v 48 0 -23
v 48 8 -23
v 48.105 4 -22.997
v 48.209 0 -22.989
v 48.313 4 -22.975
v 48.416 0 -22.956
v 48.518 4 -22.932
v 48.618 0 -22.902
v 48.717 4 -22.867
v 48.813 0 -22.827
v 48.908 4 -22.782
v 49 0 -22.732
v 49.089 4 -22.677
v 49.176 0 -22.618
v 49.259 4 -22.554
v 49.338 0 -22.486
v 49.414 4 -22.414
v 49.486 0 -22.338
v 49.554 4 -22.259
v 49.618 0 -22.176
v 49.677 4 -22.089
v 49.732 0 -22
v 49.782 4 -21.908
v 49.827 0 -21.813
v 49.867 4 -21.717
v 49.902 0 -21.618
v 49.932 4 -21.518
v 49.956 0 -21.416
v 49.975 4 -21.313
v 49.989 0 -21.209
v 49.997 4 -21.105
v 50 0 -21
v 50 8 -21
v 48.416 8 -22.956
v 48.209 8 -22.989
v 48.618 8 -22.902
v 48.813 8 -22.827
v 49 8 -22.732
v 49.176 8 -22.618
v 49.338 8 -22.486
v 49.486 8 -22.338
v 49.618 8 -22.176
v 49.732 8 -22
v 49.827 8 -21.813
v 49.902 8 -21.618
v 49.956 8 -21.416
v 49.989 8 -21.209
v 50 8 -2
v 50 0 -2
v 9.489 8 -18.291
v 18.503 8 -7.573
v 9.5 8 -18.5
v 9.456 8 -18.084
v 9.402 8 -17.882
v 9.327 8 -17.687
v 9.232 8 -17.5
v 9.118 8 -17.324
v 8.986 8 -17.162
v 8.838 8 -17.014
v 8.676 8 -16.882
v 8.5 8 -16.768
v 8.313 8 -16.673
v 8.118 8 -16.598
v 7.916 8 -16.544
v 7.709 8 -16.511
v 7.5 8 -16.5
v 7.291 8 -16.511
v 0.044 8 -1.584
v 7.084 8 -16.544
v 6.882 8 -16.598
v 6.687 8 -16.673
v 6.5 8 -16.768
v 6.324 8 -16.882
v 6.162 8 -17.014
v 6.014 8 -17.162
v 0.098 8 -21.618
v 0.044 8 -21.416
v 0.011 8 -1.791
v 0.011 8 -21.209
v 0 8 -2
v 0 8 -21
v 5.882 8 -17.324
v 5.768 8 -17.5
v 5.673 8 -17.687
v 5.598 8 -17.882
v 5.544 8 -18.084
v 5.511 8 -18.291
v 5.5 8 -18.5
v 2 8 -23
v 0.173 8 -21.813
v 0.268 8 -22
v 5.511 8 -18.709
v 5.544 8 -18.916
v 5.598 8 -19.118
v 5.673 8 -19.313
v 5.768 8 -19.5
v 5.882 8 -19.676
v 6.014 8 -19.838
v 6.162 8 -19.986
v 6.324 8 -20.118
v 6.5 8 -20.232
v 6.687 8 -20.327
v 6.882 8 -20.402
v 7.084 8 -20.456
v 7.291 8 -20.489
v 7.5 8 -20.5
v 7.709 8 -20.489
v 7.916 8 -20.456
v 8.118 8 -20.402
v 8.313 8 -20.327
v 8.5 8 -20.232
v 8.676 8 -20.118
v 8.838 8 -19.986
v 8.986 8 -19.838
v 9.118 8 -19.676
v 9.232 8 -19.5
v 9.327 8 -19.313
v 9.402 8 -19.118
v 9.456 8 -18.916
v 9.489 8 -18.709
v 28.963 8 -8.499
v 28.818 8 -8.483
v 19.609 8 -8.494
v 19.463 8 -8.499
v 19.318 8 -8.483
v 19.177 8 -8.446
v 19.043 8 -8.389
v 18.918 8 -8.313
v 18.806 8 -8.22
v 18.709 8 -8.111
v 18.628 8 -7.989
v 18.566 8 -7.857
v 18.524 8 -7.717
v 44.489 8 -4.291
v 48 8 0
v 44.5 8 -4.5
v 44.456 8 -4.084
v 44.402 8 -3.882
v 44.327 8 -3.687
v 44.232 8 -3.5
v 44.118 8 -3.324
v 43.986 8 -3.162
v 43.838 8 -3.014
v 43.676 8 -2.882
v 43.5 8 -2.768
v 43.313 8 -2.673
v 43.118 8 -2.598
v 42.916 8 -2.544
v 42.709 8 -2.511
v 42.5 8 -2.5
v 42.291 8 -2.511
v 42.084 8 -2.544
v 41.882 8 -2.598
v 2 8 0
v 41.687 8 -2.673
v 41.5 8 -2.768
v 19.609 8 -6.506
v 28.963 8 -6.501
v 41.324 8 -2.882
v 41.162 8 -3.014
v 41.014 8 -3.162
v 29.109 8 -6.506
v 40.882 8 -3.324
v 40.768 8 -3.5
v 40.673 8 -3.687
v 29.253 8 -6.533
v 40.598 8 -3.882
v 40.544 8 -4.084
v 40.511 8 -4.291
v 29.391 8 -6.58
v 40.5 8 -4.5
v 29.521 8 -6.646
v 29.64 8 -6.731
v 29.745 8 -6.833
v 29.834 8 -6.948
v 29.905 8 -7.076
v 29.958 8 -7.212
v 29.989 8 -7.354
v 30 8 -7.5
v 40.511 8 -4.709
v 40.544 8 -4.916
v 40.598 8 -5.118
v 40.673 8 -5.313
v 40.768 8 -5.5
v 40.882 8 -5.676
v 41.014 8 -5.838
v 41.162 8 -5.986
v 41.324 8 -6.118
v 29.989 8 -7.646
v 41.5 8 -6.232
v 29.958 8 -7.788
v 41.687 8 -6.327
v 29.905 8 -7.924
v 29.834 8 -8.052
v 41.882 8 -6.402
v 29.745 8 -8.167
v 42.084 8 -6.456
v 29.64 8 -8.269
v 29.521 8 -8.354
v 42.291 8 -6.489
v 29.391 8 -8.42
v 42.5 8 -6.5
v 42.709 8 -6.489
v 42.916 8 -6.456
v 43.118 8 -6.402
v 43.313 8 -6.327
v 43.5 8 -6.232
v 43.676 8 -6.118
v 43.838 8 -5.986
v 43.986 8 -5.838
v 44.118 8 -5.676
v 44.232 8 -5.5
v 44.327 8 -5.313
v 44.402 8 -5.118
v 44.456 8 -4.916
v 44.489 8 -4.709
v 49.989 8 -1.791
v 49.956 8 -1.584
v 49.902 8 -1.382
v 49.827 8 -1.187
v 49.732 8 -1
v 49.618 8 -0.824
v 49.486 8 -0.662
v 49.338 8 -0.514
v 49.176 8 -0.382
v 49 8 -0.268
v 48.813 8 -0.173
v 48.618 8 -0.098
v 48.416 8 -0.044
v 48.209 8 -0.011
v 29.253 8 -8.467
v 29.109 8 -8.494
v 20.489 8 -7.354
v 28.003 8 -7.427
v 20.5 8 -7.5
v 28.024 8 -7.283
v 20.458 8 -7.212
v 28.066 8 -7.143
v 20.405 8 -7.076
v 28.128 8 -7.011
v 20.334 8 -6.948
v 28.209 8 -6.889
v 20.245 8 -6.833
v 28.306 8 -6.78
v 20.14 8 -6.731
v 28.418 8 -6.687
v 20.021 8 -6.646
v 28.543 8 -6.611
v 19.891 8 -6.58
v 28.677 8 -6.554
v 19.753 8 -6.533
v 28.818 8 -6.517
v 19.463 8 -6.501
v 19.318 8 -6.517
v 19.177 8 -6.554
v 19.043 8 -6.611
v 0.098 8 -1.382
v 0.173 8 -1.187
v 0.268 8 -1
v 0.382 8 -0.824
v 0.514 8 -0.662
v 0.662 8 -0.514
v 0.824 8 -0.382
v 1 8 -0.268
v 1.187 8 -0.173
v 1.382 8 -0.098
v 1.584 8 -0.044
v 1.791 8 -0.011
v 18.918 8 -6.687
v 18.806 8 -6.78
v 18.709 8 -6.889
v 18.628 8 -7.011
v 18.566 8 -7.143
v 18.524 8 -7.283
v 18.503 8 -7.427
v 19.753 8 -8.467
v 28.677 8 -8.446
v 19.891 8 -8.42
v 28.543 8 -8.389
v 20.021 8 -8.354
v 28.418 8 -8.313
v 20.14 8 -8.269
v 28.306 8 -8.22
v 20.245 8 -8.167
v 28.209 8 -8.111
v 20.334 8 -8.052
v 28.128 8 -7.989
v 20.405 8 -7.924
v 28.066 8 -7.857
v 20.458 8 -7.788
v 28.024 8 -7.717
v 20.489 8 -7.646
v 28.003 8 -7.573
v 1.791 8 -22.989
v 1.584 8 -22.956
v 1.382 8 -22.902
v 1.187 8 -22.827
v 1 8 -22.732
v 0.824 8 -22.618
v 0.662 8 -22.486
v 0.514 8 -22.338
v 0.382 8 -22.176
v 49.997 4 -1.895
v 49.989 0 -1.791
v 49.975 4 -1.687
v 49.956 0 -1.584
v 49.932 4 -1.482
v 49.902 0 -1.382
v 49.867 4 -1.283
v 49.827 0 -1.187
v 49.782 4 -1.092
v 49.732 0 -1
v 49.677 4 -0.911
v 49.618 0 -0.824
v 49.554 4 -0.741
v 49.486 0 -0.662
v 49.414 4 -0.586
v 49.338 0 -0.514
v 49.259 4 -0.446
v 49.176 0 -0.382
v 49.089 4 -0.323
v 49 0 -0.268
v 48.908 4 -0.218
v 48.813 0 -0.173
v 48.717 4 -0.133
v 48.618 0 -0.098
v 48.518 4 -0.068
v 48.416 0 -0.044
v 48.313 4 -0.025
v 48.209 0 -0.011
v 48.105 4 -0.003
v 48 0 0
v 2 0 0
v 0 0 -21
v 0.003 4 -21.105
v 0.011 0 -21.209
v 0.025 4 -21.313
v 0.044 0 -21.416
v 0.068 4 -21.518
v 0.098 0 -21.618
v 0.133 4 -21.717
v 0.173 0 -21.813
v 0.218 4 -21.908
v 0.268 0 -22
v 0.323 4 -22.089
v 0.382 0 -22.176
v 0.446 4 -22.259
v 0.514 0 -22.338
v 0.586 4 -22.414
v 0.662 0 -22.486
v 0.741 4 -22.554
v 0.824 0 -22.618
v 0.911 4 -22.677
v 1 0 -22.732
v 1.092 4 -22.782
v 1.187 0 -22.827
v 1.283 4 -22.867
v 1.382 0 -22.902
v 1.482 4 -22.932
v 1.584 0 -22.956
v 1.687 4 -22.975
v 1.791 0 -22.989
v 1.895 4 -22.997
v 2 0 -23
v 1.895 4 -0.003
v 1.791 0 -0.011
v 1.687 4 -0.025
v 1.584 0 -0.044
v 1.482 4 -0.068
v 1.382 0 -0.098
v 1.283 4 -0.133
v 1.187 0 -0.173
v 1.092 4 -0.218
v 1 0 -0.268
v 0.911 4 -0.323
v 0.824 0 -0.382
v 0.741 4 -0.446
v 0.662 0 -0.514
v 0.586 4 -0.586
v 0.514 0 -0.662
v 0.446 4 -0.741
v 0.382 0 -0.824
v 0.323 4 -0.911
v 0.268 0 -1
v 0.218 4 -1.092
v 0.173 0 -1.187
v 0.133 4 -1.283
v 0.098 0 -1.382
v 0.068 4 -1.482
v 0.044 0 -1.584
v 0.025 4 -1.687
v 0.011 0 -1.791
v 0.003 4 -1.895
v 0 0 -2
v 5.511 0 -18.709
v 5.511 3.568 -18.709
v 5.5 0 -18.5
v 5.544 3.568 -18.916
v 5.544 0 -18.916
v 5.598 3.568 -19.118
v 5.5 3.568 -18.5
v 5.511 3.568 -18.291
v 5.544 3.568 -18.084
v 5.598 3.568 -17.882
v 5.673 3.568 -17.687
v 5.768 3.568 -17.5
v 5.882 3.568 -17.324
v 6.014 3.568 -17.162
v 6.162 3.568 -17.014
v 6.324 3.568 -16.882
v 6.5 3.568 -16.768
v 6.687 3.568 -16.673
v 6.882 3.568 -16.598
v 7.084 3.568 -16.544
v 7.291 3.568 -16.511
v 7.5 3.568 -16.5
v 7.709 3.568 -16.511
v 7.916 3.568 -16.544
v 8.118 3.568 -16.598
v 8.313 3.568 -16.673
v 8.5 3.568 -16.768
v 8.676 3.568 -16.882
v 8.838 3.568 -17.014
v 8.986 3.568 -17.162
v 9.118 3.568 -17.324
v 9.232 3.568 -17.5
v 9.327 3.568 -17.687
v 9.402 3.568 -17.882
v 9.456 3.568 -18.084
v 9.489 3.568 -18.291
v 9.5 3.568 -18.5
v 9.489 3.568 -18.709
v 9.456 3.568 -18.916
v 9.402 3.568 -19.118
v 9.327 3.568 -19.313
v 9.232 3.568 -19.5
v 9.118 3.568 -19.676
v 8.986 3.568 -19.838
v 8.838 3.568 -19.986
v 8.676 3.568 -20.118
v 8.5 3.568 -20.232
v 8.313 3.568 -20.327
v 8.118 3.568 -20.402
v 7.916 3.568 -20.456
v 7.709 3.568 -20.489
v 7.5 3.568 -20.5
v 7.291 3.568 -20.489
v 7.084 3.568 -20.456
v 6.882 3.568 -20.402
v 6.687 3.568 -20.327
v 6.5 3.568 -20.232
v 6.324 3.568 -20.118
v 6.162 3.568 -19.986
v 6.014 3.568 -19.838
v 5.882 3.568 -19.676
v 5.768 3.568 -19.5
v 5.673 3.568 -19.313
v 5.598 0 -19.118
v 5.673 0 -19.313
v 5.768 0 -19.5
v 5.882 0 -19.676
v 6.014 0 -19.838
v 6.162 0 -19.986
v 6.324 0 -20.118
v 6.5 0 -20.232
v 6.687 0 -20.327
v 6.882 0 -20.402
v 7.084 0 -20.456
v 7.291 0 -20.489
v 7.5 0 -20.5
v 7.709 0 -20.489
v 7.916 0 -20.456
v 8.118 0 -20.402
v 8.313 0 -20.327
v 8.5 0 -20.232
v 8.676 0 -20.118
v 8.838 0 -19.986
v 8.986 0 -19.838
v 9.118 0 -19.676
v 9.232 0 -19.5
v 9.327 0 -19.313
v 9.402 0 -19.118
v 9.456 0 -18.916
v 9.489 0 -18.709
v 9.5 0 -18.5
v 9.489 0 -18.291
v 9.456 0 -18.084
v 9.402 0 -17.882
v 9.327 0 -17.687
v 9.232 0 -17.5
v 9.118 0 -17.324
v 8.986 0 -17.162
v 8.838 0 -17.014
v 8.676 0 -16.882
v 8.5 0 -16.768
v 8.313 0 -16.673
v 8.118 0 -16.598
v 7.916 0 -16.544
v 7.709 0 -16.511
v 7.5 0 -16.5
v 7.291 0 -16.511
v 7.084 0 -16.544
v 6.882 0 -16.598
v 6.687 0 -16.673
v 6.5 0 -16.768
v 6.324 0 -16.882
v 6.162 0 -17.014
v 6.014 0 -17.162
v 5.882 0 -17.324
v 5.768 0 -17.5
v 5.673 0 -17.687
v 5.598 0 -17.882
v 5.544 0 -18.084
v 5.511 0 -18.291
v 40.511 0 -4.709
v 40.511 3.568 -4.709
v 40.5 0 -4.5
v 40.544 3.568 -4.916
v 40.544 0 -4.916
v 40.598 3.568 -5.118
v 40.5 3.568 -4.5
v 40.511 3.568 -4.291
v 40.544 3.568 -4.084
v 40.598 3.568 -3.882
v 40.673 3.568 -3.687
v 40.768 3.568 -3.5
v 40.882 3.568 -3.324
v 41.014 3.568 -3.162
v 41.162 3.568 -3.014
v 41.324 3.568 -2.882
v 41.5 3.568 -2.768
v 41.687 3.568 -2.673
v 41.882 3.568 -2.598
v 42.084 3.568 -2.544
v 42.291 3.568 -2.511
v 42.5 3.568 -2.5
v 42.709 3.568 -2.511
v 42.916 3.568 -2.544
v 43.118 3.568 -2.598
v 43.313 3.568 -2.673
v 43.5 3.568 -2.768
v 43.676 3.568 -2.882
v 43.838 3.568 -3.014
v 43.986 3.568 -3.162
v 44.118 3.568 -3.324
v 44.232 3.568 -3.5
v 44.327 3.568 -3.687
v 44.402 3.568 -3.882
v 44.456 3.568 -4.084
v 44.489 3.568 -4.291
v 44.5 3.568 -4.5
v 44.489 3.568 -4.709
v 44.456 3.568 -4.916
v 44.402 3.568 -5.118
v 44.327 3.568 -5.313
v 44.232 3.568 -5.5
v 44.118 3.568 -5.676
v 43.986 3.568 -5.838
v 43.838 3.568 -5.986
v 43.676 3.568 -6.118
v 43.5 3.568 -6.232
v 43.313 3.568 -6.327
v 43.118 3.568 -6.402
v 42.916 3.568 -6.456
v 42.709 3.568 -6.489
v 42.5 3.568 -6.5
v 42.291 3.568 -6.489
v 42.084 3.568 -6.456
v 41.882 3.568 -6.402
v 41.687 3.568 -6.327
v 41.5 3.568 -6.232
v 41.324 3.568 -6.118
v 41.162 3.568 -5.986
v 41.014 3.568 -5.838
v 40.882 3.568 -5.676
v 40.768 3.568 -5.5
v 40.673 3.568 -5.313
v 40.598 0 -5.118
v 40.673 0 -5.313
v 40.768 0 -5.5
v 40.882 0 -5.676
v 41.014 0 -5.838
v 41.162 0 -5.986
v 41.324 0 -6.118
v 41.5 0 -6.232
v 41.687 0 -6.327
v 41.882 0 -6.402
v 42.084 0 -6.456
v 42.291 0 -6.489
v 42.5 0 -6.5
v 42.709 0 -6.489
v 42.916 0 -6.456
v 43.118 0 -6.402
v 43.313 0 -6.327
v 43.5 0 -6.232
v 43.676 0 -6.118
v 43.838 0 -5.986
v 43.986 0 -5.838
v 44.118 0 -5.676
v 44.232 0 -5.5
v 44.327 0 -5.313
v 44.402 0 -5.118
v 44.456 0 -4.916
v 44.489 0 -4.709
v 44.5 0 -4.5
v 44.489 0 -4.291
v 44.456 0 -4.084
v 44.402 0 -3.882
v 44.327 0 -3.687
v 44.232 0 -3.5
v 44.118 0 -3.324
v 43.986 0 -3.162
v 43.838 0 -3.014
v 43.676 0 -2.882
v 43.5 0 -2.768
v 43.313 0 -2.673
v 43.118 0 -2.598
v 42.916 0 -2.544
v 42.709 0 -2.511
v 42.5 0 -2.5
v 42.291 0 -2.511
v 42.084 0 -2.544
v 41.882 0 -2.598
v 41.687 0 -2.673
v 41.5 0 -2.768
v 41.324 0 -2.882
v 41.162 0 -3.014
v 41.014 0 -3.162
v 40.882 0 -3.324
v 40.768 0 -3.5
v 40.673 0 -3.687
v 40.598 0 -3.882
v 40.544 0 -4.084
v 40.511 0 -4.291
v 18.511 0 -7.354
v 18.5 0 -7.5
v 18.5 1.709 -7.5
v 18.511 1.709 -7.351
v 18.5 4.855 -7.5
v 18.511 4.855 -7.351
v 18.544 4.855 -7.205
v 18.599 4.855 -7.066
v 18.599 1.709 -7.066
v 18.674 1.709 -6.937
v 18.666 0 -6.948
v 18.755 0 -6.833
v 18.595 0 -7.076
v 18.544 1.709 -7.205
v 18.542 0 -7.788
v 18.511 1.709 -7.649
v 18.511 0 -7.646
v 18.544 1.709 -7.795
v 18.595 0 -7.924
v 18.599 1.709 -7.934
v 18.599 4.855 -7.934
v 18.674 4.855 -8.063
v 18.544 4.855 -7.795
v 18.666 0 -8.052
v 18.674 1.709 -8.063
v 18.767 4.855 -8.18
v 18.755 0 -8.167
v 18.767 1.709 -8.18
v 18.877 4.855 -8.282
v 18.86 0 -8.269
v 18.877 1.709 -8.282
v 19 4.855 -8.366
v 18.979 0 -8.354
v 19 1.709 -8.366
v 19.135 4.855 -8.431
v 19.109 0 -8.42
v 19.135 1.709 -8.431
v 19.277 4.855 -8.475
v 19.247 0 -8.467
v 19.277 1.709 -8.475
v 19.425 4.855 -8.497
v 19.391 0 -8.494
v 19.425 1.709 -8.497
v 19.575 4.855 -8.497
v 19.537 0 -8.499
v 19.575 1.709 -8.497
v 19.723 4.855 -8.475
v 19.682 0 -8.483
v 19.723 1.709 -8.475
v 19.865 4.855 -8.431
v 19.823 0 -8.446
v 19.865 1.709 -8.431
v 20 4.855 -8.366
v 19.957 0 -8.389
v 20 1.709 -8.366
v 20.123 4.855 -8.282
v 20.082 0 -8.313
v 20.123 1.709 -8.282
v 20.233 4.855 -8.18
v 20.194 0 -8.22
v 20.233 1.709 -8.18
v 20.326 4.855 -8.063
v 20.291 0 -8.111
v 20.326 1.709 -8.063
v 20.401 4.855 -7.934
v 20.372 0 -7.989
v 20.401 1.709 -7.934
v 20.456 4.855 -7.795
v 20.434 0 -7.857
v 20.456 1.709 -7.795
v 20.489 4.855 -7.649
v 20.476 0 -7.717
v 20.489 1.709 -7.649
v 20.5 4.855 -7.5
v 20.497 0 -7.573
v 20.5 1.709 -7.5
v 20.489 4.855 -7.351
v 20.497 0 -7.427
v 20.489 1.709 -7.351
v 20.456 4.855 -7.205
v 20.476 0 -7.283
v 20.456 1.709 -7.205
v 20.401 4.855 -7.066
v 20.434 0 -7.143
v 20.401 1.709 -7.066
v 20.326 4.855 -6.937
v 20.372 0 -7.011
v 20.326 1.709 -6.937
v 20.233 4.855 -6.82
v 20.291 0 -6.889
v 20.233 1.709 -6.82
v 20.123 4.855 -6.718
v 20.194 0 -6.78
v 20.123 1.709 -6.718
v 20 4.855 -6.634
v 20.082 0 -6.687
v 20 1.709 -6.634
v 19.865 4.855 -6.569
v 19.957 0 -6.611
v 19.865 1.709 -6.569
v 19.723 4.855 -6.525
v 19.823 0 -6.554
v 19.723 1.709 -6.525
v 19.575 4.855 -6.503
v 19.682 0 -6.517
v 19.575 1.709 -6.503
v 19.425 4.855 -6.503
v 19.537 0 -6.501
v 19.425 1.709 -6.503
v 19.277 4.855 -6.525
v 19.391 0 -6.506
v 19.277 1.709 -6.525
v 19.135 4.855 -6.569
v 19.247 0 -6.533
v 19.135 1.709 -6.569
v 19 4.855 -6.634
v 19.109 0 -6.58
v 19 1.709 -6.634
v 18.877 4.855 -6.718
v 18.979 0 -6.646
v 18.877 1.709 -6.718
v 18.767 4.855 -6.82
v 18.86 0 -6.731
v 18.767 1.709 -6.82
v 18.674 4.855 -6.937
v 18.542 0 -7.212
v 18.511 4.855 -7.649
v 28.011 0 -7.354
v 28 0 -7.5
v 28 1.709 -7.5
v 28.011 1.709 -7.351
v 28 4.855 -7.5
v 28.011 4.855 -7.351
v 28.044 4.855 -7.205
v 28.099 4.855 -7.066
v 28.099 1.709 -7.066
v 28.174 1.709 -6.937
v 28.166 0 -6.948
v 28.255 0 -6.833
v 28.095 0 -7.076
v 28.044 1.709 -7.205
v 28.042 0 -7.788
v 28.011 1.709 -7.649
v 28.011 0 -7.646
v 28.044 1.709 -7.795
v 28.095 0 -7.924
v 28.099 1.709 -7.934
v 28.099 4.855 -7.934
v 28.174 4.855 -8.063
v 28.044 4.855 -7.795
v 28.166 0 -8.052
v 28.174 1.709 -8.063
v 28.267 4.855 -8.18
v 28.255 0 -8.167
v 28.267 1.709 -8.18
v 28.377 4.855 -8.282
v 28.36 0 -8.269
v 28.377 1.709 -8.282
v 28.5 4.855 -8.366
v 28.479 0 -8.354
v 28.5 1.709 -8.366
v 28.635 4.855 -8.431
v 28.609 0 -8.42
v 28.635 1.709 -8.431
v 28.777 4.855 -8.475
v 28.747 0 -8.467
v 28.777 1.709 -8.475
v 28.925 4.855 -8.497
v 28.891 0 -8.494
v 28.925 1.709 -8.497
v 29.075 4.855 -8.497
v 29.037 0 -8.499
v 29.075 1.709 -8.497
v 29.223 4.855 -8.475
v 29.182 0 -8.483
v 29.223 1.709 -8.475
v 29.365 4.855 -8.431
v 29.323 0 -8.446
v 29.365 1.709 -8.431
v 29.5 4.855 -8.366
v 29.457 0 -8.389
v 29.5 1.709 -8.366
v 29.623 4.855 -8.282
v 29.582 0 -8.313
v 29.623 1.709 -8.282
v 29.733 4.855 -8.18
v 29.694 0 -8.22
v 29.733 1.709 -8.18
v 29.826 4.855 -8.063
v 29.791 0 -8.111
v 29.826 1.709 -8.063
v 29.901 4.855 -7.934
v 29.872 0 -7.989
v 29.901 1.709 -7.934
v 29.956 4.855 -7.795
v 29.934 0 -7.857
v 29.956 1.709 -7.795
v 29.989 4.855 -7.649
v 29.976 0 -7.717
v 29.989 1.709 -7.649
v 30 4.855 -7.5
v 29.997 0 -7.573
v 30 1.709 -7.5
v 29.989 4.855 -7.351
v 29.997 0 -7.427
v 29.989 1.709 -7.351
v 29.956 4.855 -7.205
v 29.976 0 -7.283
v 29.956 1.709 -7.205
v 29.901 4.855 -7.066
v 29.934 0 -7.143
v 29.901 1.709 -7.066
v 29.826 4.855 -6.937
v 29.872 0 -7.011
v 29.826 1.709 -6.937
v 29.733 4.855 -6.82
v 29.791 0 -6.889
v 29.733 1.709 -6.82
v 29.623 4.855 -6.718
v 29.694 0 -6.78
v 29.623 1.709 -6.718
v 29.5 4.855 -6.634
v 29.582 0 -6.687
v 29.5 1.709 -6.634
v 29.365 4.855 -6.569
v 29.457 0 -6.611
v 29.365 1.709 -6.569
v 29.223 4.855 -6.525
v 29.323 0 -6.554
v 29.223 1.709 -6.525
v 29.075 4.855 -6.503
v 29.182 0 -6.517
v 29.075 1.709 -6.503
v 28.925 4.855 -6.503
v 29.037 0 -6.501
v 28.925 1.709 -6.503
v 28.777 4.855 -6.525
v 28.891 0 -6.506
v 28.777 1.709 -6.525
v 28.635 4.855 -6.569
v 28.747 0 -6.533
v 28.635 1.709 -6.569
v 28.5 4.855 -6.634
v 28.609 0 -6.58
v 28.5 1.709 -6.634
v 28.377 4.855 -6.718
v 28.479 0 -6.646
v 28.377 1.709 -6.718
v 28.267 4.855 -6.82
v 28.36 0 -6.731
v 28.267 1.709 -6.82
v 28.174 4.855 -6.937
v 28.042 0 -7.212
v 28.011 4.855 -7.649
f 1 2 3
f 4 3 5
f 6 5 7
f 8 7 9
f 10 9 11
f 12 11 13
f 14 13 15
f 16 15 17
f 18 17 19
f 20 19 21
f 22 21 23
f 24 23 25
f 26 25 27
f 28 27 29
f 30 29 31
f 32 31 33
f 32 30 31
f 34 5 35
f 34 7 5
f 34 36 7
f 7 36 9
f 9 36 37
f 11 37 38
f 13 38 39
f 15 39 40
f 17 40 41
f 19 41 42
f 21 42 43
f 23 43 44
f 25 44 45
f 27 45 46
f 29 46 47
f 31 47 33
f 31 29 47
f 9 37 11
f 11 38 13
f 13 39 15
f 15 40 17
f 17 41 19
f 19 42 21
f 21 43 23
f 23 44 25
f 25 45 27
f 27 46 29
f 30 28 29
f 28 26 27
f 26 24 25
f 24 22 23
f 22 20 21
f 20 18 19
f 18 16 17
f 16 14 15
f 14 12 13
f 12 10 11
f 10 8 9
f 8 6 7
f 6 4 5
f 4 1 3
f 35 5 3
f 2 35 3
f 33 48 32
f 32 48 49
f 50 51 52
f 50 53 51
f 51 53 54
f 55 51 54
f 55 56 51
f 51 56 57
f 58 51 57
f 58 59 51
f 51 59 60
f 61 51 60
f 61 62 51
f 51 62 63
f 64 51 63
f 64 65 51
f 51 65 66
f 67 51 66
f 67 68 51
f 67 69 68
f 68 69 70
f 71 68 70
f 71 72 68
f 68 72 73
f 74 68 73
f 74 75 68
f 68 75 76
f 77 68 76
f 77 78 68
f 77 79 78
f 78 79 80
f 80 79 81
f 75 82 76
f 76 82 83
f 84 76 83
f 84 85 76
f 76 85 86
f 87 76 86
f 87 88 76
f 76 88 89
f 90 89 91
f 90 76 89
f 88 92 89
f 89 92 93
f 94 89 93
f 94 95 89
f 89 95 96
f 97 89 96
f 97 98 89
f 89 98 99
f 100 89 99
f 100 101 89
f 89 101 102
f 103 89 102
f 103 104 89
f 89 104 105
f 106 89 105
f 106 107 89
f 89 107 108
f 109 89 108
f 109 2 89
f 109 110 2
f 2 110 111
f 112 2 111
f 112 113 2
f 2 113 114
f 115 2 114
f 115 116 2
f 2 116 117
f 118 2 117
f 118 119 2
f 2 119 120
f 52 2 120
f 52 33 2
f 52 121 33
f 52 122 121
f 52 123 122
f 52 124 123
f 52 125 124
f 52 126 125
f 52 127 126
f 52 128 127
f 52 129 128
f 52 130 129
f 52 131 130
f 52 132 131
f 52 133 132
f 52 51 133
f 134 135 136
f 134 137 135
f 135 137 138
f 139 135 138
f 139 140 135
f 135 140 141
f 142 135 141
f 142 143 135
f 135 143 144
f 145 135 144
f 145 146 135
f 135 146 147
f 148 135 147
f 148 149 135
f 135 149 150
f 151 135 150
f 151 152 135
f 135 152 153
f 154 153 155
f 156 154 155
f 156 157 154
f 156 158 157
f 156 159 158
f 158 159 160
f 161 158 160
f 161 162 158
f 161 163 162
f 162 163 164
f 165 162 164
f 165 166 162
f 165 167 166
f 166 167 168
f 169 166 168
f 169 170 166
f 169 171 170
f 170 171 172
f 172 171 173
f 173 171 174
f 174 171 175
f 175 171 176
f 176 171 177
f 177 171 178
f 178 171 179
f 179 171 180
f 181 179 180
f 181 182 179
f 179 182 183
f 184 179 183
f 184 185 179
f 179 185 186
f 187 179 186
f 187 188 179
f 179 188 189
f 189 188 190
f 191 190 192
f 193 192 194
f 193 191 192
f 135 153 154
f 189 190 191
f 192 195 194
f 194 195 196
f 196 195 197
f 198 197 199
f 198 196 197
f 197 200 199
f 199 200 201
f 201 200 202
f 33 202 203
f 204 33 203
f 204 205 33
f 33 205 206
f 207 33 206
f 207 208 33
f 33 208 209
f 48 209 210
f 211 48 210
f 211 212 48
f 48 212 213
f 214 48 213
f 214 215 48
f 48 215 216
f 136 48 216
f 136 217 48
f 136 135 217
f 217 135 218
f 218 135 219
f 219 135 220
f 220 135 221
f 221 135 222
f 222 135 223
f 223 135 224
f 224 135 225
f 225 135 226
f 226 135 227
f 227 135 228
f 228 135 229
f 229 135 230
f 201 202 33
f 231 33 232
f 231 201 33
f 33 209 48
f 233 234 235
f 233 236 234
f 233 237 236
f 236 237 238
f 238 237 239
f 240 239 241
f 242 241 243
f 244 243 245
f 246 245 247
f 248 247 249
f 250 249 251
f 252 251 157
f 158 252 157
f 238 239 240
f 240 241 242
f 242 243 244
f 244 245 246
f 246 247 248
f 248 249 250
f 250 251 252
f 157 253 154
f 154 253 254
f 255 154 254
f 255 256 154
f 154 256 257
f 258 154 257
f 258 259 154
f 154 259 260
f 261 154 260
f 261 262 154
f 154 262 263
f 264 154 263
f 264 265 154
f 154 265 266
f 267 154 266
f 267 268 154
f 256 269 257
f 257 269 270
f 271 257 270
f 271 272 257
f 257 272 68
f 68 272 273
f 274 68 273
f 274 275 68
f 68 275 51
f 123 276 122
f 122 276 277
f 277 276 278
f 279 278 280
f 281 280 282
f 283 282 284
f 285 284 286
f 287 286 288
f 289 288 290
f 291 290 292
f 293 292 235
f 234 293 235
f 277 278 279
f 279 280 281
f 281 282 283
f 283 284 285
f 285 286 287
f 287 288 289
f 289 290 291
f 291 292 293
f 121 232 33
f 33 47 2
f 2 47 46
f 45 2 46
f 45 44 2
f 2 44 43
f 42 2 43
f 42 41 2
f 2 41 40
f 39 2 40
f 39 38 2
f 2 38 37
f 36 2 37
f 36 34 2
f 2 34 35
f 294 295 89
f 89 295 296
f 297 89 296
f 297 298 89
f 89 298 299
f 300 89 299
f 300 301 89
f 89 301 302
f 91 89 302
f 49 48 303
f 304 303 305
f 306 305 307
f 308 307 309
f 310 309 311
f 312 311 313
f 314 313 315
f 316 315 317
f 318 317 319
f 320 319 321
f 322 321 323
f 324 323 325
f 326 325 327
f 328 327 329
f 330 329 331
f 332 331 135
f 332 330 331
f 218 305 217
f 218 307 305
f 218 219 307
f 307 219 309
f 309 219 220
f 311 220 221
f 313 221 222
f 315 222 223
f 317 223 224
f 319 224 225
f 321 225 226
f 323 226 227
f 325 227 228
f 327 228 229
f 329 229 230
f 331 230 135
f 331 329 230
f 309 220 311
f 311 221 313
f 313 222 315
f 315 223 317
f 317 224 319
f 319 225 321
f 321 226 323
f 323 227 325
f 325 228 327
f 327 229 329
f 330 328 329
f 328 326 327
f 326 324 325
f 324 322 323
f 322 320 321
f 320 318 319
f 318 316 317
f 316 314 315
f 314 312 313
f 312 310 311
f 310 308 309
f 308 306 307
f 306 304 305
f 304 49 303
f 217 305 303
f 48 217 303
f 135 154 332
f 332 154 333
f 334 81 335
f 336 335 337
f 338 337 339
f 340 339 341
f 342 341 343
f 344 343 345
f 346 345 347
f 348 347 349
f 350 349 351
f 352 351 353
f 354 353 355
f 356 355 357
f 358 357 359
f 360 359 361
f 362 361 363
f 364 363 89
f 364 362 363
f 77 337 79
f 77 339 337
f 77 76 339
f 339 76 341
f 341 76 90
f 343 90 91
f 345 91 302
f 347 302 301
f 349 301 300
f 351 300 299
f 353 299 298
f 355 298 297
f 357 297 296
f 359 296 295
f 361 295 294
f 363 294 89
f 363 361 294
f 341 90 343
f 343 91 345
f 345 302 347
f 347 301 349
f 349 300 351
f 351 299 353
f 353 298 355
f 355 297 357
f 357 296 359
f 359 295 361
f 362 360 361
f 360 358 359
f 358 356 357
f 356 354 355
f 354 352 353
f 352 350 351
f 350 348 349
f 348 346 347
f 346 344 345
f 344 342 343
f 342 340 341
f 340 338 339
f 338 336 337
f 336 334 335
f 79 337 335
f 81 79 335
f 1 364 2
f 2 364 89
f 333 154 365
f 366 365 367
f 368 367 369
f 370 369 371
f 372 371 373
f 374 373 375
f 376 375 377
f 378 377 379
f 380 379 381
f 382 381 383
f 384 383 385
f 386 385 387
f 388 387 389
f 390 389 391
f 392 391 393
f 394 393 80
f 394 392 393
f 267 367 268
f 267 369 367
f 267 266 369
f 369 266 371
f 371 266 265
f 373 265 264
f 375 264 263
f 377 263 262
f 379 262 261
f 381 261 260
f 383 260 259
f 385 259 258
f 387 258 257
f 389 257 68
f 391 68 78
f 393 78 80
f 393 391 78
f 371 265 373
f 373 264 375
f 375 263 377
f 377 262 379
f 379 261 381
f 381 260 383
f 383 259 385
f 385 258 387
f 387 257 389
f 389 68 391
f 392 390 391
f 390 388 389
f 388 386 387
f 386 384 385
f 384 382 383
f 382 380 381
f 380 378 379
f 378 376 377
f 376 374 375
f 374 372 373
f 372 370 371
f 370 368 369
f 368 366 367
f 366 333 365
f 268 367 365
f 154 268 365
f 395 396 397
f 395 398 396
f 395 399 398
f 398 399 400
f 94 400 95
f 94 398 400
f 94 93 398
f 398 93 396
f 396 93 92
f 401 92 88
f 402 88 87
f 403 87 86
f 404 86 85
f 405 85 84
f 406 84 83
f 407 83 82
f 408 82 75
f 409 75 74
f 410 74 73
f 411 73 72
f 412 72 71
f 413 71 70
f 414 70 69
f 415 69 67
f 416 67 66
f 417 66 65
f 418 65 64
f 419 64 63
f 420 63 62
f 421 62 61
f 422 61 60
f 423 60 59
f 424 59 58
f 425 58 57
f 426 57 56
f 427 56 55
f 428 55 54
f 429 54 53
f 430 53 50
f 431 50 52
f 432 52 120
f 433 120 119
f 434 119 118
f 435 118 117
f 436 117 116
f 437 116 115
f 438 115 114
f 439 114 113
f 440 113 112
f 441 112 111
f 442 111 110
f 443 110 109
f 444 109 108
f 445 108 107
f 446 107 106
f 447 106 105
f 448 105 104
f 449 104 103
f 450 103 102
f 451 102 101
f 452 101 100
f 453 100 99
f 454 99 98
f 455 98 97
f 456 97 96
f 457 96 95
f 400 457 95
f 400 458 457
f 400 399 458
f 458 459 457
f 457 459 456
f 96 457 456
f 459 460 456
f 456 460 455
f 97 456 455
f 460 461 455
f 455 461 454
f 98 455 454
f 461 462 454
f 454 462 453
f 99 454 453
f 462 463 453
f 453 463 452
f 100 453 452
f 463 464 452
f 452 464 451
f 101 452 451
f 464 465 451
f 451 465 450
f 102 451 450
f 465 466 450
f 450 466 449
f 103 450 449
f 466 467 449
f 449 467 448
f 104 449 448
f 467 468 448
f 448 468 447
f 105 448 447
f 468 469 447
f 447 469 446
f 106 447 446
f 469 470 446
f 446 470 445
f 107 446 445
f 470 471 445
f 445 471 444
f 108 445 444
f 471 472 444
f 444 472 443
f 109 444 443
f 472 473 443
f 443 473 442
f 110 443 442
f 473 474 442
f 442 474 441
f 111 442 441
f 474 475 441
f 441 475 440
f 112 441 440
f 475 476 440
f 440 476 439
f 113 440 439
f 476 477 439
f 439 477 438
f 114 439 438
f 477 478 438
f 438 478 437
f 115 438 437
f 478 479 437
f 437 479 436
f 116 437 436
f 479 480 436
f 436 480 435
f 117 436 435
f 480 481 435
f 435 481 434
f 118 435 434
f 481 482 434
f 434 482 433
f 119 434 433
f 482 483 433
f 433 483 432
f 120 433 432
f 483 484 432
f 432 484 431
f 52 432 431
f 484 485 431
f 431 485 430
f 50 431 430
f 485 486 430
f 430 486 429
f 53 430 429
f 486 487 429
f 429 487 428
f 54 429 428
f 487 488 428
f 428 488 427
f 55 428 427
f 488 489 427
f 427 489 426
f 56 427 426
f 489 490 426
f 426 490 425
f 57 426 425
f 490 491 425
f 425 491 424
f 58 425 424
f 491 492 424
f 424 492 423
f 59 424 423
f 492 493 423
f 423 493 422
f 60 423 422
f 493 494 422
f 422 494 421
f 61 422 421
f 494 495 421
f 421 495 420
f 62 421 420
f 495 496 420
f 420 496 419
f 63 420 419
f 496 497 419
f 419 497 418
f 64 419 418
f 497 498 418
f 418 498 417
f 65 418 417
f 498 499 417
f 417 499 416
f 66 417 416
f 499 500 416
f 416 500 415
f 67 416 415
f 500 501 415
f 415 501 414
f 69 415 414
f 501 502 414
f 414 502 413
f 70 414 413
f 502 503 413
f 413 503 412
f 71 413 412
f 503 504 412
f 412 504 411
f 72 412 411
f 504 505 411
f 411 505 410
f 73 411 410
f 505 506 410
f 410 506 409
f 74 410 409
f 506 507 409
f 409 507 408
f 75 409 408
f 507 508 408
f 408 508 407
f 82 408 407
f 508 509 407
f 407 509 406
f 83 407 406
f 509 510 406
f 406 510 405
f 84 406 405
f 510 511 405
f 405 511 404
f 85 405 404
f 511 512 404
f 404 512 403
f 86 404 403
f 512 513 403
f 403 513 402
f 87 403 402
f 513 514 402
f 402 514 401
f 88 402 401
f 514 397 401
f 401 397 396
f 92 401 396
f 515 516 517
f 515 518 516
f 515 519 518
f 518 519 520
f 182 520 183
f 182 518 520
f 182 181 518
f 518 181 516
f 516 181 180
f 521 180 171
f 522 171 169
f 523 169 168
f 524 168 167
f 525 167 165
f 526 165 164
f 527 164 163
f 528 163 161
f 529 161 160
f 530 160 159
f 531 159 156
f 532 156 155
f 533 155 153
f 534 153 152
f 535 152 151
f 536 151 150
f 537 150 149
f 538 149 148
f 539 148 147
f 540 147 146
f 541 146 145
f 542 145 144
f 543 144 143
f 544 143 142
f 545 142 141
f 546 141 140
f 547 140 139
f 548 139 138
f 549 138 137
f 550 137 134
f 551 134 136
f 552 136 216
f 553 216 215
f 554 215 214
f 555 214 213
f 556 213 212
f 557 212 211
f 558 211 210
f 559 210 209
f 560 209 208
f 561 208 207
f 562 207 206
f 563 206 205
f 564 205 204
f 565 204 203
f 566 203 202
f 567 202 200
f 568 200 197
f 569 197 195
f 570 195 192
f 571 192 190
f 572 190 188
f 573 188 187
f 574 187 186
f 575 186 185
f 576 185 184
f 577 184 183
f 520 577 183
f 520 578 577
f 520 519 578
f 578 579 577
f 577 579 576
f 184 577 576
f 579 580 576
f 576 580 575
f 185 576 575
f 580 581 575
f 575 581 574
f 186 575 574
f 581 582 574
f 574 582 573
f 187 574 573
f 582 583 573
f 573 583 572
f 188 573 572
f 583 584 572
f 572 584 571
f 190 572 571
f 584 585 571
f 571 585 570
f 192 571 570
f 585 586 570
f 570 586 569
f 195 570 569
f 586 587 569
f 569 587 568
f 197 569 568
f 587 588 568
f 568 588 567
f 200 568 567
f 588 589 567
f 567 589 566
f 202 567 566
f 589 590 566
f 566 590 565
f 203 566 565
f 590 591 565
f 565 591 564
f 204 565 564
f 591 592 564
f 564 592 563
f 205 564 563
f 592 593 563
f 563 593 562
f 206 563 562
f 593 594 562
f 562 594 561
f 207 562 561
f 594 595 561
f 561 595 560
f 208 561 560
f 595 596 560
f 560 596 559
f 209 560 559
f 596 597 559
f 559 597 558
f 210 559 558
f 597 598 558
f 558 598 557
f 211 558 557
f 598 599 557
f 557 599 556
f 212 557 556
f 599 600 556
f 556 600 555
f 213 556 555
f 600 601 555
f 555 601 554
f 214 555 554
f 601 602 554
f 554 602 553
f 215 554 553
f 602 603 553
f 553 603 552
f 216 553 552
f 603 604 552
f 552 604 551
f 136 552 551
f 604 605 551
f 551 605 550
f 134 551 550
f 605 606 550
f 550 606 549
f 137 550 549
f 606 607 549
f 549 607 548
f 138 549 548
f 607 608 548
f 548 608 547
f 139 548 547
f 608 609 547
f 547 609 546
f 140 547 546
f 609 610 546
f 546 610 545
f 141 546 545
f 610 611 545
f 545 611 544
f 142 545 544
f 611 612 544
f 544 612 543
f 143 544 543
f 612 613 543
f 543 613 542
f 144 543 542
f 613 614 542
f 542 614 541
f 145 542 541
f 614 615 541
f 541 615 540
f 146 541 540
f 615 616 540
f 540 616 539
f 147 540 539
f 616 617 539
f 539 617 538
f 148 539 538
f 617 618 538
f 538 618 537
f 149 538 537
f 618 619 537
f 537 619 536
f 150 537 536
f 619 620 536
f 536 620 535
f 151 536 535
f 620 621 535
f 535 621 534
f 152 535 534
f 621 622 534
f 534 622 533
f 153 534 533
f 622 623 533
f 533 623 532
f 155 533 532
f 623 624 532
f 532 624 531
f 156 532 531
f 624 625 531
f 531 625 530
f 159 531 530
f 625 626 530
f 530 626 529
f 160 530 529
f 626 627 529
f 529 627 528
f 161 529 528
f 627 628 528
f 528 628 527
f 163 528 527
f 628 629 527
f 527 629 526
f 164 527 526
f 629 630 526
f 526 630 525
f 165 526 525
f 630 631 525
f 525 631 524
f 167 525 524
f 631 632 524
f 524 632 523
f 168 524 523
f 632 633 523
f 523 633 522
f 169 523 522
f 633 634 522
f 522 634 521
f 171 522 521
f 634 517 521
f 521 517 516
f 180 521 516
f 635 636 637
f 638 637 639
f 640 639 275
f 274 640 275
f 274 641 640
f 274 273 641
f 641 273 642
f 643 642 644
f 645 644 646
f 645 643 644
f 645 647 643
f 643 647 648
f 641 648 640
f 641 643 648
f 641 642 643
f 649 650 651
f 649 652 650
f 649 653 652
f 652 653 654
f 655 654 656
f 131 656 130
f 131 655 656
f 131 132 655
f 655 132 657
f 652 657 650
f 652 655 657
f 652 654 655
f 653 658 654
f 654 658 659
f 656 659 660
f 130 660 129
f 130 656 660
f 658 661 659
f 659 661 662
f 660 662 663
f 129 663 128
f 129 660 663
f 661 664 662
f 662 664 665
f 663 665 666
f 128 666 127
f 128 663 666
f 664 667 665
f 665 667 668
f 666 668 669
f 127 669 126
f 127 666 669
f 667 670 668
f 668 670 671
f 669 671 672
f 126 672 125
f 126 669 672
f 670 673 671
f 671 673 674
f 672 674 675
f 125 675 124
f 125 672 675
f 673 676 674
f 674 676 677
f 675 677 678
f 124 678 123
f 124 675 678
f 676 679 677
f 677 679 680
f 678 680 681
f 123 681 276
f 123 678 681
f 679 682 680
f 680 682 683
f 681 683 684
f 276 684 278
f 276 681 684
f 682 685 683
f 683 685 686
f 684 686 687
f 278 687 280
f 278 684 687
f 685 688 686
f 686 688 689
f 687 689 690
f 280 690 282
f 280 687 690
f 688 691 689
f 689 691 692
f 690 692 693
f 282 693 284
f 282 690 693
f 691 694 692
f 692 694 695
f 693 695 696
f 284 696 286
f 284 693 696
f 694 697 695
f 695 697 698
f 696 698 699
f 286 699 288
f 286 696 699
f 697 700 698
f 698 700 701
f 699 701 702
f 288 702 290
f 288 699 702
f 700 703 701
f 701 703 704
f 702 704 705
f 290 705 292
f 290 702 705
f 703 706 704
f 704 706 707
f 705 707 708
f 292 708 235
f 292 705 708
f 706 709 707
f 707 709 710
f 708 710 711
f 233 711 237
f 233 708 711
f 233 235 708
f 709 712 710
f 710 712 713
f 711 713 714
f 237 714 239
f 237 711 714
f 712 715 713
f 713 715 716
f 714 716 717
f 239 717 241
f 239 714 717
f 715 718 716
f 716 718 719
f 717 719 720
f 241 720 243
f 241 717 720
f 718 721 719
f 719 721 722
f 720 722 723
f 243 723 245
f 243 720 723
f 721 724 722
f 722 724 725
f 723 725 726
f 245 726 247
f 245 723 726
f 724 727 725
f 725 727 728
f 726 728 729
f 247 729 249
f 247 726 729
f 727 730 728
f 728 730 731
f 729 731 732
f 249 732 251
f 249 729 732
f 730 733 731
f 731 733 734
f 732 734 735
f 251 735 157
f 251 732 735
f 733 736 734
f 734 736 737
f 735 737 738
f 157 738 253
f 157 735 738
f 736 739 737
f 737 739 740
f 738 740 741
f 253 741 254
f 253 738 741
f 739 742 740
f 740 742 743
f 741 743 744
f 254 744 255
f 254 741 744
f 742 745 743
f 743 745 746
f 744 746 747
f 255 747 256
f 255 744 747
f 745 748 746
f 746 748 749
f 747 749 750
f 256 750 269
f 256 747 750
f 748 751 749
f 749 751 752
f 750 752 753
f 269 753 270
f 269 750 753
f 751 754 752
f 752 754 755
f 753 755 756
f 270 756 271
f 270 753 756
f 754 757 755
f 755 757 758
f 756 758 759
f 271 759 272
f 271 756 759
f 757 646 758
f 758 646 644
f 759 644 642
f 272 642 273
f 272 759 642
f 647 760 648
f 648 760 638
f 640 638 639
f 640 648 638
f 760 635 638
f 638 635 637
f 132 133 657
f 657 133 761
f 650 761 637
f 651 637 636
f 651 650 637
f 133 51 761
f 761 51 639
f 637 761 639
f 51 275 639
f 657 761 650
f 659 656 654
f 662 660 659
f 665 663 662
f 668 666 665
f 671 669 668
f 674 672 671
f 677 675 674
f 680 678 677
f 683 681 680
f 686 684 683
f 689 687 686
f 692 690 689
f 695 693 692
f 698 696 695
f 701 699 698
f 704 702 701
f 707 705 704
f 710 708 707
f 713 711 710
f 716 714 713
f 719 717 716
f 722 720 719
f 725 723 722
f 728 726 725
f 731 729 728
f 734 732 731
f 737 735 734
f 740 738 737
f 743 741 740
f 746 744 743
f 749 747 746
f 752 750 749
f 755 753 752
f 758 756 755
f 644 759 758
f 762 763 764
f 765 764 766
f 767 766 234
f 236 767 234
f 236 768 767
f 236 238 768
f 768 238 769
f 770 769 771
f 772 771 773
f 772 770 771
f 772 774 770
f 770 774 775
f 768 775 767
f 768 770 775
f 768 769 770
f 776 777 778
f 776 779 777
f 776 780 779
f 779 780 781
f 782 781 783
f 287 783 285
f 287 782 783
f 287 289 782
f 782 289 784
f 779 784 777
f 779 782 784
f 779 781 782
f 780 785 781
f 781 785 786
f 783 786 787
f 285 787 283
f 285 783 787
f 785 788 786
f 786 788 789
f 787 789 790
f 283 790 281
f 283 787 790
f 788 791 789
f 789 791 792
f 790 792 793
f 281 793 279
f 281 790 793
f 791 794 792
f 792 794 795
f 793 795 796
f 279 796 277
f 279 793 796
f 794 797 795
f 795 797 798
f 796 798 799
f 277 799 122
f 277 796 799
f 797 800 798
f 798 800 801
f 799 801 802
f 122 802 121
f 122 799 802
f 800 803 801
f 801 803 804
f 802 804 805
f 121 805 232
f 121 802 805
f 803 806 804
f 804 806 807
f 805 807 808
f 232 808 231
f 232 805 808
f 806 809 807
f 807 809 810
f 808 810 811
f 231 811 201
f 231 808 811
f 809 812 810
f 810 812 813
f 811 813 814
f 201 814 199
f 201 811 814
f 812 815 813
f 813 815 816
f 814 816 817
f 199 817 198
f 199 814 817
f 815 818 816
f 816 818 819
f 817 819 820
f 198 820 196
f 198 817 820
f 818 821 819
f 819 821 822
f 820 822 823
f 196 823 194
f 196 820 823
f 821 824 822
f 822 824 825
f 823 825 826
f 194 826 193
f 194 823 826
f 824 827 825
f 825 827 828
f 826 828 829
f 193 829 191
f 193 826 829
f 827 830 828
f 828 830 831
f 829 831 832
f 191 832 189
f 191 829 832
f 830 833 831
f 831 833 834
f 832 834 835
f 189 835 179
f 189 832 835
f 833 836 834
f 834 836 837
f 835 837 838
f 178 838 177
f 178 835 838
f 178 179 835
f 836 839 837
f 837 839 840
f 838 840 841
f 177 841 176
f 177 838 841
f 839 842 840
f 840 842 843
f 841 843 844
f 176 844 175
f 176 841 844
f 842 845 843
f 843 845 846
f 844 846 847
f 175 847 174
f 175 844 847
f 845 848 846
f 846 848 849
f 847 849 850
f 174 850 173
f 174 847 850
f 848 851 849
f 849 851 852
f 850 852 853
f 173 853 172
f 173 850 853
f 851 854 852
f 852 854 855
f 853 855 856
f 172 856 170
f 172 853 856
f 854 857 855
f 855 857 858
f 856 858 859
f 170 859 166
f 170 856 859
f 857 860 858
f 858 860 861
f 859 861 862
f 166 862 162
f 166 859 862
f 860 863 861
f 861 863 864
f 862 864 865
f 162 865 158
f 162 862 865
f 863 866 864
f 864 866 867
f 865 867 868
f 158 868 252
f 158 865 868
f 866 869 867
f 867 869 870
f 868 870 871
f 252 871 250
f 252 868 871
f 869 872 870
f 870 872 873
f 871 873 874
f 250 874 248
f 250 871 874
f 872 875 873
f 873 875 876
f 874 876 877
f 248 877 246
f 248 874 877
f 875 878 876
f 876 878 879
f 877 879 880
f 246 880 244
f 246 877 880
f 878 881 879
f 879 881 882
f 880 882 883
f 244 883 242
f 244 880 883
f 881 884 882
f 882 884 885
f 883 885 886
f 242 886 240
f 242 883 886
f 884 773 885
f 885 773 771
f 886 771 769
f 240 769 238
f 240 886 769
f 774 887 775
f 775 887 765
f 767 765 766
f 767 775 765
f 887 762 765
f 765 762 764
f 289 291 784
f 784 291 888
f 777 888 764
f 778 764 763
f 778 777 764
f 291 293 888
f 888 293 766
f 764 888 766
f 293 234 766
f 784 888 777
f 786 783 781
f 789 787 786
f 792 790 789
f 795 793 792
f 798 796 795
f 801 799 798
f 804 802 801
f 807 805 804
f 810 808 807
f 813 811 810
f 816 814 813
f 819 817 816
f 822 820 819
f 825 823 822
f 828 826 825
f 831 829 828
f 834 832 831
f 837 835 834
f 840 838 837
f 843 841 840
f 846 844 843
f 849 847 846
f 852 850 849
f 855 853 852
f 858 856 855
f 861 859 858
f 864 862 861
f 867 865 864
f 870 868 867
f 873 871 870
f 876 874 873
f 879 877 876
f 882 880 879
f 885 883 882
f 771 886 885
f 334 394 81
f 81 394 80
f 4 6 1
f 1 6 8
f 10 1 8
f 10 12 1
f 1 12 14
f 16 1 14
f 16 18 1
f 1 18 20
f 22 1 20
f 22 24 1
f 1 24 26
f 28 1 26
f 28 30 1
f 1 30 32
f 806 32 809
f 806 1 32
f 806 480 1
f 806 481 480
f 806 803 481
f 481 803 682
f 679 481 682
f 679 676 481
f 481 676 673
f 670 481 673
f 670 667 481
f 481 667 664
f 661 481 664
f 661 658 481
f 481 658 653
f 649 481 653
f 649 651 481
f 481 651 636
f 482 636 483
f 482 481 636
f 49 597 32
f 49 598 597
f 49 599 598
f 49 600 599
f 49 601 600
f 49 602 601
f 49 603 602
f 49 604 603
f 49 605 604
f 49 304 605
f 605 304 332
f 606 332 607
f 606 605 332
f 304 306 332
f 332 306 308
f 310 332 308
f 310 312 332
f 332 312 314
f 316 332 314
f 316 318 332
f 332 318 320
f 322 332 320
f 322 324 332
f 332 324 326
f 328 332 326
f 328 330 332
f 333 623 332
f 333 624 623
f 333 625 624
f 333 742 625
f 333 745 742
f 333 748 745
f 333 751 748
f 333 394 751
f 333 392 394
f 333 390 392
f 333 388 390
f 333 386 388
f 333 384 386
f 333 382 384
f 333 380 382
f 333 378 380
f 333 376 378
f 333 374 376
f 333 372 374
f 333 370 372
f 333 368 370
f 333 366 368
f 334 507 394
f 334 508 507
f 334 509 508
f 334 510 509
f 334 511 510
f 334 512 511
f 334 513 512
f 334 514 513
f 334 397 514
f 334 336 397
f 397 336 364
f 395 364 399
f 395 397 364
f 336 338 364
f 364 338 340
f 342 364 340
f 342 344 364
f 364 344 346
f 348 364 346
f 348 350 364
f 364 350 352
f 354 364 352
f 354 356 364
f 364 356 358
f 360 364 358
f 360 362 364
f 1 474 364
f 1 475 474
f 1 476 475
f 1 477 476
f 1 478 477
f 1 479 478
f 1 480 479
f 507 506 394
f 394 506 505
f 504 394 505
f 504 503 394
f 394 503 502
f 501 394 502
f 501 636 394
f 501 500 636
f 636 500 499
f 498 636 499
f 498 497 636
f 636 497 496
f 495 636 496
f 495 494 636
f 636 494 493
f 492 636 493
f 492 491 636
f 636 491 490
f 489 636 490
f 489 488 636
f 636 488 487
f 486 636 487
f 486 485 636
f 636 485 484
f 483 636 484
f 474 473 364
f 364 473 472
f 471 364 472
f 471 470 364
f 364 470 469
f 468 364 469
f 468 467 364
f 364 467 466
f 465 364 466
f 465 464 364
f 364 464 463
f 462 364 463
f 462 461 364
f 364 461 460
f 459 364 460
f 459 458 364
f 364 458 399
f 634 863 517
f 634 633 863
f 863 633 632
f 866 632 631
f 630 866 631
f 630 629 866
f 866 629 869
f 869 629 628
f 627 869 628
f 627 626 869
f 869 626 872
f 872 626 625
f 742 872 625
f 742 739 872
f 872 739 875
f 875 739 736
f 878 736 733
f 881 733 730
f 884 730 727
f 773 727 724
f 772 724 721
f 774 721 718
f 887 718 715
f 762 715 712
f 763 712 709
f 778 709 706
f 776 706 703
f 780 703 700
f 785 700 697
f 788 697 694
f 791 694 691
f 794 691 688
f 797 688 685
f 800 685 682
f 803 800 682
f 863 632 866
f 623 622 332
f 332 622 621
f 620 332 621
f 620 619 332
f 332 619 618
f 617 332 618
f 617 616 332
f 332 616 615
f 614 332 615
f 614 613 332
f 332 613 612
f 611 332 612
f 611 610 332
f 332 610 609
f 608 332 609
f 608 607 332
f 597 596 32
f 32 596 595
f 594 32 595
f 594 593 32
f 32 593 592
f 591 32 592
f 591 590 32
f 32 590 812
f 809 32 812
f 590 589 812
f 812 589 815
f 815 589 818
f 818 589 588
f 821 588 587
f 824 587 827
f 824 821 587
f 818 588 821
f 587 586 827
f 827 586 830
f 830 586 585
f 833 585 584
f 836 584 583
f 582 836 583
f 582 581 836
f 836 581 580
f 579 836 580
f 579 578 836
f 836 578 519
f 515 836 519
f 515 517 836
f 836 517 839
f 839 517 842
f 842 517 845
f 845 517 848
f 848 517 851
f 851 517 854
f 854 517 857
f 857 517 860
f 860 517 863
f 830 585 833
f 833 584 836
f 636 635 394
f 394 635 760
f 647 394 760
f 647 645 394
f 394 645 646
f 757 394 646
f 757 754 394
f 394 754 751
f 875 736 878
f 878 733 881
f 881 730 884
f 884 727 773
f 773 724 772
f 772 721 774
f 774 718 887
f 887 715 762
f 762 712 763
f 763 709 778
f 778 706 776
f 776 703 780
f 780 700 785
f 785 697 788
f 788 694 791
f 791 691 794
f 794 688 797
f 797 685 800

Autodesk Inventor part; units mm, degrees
ref_plane "YZ Plane" through (0, 0, 0) normal (1, 0, 0) x (0, 1, 0)
ref_plane "XZ Plane" through (0, 0, 0) normal (0, 1, 0) x (-1, 0, 0)
ref_plane "XY Plane" through (0, 0, 0) normal (0, 0, 1) x (1, 0, 0)
sketch "Sketch1" plane through (0, 0, 0) normal (0, 1, 0) x (-1, 0, 0)
  line L0 (0, 0) -> (-50, 0)
  line L1 (-50, 0) -> (-50, -23)
  line L2 (-50, -23) -> (0, -23)
  line L3 (0, -23) -> (0, 0)
  dimension "d0" = 50
  dimension "d1" = 23
extrude "Extrusion1" add sketch "Sketch1" along normal blind 8
sketch "Sketch2" plane through (0, 8, 0) normal (0, 1, 0) x (1, 0, 0)
  line L0 (0, 0) -> (50, 0) construction
  line L1 (50, 0) -> (50, 23) construction
  line L2 (50, 23) -> (0, 23) construction
  line L3 (0, 23) -> (0, 0) construction
  point P0 (7.5, 18.5)
  point P1 (19.5, 7.5)
  point P2 (29, 7.5)
  point P3 (42.5, 4.5)
  dimension "d5" = 4.5
  dimension "d6" = 7.5
  dimension "d7" = 7.5
  dimension "d8" = 19.5
  dimension "d9" = 9.5
  dimension "d10" = 7.5
  dimension "d11" = 4.5
hole "Hole1" at (19.5, 8, -7.5) at (29, 8, -7.5) direction (0, -1, 0) diameter 2 end through all
hole "Hole2" at (7.5, 8, -18.5) at (42.5, 8, -4.5) direction (0, -1, 0) diameter 4 end through all
fillet "Fillet1" radius 2 4 edges at (0, 4, 0) (0, 4, -23) (50, 4, 0) (50, 4, -23)
properties part number "A8-0016"
